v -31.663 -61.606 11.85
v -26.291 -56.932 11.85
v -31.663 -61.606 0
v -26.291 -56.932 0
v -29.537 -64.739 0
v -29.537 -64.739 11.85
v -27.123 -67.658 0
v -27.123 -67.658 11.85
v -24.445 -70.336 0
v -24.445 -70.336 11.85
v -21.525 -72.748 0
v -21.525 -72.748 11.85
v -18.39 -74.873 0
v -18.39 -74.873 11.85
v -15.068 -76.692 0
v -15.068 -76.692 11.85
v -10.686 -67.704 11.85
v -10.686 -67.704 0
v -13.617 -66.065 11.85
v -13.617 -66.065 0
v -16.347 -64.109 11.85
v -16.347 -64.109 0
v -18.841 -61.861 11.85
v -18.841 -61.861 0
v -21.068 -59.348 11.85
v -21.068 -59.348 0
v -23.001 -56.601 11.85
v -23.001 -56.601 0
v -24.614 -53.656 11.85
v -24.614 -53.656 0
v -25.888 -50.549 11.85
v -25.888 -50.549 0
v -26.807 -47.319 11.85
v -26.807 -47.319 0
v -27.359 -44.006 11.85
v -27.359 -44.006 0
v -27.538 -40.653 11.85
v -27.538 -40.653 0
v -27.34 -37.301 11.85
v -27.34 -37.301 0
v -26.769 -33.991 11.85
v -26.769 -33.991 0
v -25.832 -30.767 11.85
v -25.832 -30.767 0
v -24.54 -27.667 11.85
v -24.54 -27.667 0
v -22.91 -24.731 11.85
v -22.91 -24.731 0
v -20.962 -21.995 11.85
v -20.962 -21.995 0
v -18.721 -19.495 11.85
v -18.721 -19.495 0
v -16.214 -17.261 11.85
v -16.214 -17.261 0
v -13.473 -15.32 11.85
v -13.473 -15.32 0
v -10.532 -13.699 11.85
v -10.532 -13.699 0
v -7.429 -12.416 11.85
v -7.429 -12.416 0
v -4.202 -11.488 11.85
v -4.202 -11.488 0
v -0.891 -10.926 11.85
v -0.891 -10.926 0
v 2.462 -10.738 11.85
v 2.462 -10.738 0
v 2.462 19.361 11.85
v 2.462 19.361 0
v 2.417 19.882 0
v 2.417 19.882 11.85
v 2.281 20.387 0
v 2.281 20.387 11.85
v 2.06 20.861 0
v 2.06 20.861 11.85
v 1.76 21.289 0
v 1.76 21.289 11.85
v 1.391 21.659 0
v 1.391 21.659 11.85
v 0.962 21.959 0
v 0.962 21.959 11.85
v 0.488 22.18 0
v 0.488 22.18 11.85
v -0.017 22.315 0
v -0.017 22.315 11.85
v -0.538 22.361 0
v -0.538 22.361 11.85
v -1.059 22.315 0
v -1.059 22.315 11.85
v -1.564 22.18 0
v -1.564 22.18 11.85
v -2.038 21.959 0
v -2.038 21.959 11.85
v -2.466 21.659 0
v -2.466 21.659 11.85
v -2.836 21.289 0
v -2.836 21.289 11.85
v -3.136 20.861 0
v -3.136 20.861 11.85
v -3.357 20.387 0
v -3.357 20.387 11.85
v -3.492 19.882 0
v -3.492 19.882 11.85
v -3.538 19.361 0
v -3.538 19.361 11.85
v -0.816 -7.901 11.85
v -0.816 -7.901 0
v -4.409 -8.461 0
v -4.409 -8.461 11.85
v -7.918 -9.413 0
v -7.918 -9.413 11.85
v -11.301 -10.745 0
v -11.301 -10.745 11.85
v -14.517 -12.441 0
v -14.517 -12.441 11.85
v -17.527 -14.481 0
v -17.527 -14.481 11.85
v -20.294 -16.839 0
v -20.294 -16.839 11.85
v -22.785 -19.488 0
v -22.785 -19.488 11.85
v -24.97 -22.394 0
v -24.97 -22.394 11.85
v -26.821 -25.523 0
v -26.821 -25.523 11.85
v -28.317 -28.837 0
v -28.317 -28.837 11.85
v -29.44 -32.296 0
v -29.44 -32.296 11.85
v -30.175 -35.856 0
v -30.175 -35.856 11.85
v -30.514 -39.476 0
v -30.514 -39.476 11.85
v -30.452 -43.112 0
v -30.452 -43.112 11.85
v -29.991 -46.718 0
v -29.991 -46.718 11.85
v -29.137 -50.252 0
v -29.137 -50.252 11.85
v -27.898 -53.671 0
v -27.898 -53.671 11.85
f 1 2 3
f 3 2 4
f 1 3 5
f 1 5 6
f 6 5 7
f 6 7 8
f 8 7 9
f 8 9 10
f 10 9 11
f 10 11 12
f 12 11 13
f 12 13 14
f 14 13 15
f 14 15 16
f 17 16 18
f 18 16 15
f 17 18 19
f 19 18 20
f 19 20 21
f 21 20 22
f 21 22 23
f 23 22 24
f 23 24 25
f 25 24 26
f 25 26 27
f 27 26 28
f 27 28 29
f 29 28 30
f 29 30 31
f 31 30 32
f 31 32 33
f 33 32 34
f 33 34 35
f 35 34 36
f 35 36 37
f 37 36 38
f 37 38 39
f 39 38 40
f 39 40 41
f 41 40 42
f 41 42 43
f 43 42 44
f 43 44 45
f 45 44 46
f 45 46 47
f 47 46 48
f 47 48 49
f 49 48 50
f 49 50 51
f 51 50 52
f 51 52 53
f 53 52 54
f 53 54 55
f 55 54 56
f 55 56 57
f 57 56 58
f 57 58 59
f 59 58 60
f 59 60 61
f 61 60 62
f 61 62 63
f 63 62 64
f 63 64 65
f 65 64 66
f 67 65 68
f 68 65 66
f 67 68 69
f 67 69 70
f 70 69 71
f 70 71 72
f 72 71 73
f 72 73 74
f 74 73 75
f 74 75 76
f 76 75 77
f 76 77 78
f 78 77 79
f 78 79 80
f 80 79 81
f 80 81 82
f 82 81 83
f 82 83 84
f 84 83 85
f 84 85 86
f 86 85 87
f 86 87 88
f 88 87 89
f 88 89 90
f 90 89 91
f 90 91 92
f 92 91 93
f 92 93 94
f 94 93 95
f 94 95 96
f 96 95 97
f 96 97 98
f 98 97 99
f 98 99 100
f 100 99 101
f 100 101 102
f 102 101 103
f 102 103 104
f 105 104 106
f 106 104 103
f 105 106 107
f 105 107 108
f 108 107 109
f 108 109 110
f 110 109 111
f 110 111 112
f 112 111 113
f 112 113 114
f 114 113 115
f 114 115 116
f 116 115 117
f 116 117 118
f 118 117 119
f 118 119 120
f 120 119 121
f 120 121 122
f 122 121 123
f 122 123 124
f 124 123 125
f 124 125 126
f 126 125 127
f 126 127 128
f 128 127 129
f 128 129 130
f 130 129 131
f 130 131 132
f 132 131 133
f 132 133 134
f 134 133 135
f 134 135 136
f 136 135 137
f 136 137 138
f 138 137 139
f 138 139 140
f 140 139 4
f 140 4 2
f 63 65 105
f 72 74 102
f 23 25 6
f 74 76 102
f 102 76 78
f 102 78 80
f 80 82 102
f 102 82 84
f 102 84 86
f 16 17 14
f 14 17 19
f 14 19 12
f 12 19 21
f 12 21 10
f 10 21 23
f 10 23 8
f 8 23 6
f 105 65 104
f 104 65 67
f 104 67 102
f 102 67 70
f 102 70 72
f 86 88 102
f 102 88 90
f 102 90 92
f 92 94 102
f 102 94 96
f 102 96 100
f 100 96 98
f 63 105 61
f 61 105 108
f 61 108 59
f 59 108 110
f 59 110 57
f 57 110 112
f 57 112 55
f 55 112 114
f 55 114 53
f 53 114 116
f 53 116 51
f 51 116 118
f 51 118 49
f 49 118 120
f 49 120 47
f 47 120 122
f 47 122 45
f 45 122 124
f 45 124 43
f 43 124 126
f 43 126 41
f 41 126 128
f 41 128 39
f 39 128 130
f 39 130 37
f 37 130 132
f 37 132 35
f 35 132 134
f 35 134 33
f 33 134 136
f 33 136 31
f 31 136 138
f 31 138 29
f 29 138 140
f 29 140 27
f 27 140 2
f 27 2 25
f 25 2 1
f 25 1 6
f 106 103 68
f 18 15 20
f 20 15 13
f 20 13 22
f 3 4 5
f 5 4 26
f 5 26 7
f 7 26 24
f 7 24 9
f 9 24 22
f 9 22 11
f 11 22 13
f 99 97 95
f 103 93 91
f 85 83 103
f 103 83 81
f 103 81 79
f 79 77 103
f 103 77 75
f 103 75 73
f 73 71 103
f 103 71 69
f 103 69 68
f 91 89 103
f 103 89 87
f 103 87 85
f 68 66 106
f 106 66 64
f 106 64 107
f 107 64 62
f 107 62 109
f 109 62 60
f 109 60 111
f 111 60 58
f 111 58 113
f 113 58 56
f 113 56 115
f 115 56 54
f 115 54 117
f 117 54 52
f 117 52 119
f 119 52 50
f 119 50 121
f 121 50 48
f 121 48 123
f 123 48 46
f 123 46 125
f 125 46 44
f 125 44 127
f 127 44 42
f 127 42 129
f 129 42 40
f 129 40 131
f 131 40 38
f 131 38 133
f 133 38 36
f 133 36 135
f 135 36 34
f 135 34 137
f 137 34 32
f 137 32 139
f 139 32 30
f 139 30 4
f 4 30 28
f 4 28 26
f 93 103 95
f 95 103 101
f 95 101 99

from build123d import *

# Parameters (mm, degrees)
RESSALTO_EXTRUS_O1_DEPTH = 11.849977


with BuildPart() as part:
    # Esboço1 → Ressalto-extrusão1 (new body)
    with BuildSketch(Plane.XY):
        with BuildLine():
            ThreePointArc((-10.685745363, -67.703603991), (-26.769323244, -33.991425444), (2.462180193, -10.738217779))
            Line((2.462180193, -10.738217779), (2.462180193, -0.672237217))
            Line((2.462180193, -0.672237217), (2.462180193, 19.360753065))
            ThreePointArc((2.462180193, 19.360753065), (-0.537819807, 22.360753065), (-3.537819807, 19.360753065))
            Line((-3.537819807, 19.360753065), (-3.478607435, 18.767652629))
            Line((-3.478607435, 18.767652629), (-0.816088481, -7.901455538))
            ThreePointArc((-0.816088481, -7.901455538), (-26.821074104, -25.523388901), (-26.291187743, -56.932162089))
            Line((-26.291187743, -56.932162089), (-31.663381791, -61.605561148))
            ThreePointArc((-31.663381791, -61.605561148), (-24.444874339, -70.335690922), (-15.068387215, -76.692066062))
            Line((-15.068387215, -76.692066062), (-10.685745363, -67.703603991))
        make_face()
    extrude(amount=RESSALTO_EXTRUS_O1_DEPTH)


solid = part.part
